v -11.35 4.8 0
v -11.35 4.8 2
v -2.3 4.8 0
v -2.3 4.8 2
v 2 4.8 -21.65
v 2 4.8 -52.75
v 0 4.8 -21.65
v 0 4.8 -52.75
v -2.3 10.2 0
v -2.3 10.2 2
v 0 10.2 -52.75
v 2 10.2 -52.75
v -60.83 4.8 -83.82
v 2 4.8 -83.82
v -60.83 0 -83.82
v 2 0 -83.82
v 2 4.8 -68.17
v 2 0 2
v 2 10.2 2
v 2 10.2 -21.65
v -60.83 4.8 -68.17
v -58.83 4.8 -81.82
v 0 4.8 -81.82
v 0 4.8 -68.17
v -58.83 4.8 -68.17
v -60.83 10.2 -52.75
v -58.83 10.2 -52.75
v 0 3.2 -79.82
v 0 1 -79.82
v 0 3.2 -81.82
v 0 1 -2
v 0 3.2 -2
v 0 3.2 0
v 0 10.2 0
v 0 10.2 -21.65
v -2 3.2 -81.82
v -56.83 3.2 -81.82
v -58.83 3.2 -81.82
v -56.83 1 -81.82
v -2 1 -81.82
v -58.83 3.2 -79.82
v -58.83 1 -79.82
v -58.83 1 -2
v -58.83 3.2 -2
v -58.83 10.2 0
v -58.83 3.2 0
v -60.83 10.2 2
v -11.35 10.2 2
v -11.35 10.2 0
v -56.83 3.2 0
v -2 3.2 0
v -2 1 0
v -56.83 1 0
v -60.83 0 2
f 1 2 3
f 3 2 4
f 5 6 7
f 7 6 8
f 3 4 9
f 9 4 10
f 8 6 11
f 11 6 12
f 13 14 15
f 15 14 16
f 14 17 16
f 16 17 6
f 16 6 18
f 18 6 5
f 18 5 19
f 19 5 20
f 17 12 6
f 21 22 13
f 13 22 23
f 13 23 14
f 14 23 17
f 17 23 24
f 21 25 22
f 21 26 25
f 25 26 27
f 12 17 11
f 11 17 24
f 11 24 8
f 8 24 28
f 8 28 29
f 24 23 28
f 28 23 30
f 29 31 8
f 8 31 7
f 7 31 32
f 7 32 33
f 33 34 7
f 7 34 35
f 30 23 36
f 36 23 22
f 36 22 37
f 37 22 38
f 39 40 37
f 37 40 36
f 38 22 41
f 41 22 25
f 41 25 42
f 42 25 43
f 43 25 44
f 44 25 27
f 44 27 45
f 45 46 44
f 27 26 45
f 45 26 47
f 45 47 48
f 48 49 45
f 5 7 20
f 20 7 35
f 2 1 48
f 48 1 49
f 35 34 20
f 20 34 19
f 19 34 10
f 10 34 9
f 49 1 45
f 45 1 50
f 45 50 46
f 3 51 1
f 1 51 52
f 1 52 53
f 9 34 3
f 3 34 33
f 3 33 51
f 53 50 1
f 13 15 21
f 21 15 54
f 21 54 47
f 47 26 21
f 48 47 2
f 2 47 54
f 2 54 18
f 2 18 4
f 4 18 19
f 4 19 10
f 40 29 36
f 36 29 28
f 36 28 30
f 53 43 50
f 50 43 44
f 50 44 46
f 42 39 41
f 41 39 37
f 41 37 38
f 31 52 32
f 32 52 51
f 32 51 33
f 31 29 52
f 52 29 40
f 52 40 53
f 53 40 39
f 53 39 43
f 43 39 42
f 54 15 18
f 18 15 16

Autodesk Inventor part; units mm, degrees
ref_plane "YZ Plane" through (0, 0, 0) normal (1, 0, 0) x (0, 1, 0)
ref_plane "XZ Plane" through (0, 0, 0) normal (0, 1, 0) x (-1, 0, 0)
ref_plane "XY Plane" through (0, 0, 0) normal (0, 0, 1) x (1, 0, 0)
sketch "Sketch1" plane through (0, 0, 0) normal (0, 1, 0) x (-1, 0, 0)
  line L0 (58.83, 0) -> (0, 0)
  line L1 (0, 0) -> (0, -81.82)
  line L2 (0, -81.82) -> (58.83, -81.82)
  line L3 (58.83, -81.82) -> (58.83, 0)
  point P0 (0, 0)
  dimension "d0" = 58.83
  dimension "d1" = 81.82
extrude "Extrusion1" add sketch "Sketch1" along normal blind 1
sketch "Sketch2" plane through (0, 1, 0) normal (0, 1, 0) x (1, 0, 0)
  line L0 (-56.83, 0) -> (-58.83, 2)
  line L1 (-56.83, 81.82) -> (-58.83, 79.82)
  line L2 (0, 79.82) -> (-2, 81.82)
  line L3 (-2, 0) -> (0, 2)
  line L4 (-58.83, 0) -> (0, 0) projected
  line L5 (-58.83, 0) -> (-58.83, 2)
  line L6 (-58.83, 81.82) -> (-58.83, 0) projected
  line L7 (-58.83, 0) -> (-56.83, 0)
  line L8 (-58.83, 81.82) -> (-58.83, 79.82)
  line L9 (-58.83, 2) -> (-58.83, 0)
  line L10 (-58.83, 0) -> (-56.83, 0)
  line L11 (-2, 0) -> (0, 0)
  line L12 (0, 0) -> (0, 2)
  line L13 (0, 79.82) -> (0, 81.82)
  line L14 (0, 81.82) -> (-2, 81.82)
  line L15 (-56.83, 81.82) -> (-58.83, 81.82)
  dimension "d4" = 2
  dimension "d5" = 2
  dimension "d6" = 2
  dimension "d7" = 2
  dimension "d8" = 2
  dimension "d9" = 2
  dimension "d10" = 2
  dimension "d11" = 2
extrude "Extrusion2" add sketch "Sketch2" along normal blind 2.2
sketch "Sketch3" plane through (0, 0, 0) normal (0, -1, 0) x (1, 0, 0)
  line L0 (-58.83, 0) -> (0, 0) projected
  line L1 (-58.83, -81.82) -> (-58.83, 0) projected
  line L2 (0, -81.82) -> (-58.83, -81.82) projected
  line L3 (0, 0) -> (0, -81.82) projected
  line L4 (2, 2) -> (-60.83, 2)
  line L5 (-60.83, 2) -> (-60.83, -83.82)
  line L6 (-60.83, -83.82) -> (2, -83.82)
  line L7 (2, -83.82) -> (2, 2)
  point P0 (0, 0)
  dimension "d14" = 2
extrude "Extrusion3" add sketch "Sketch3" against normal blind 10.2
sketch "Sketch4" plane through (0, 10.2, 0) normal (0, 1, 0) x (1, 0, 0)
  line L0 (-58.83, 0) -> (-58.83, 81.82) projected
  line L1 (-58.83, 81.82) -> (0, 81.82) projected
  line L2 (0, 81.82) -> (0, 0) projected
  line L3 (0, 0) -> (-58.83, 0) projected
  line L4 (-60.83, -2) -> (2, -2) projected
  line L5 (2, -2) -> (2, 83.82) projected
  line L6 (2, 83.82) -> (-60.83, 83.82) projected
  line L7 (-60.83, 83.82) -> (-60.83, -2) projected
  line L8 (0, 0) -> (-2.3, 0)
  line L9 (-56.83, 0) -> (-2, 0) projected
  line L10 (2, -2) -> (-60.83, -2) projected
  line L11 (-2.3, 0) -> (-11.35, 0)
  line L12 (-11.35, 0) -> (-11.35, -2)
  line L13 (-11.35, -2) -> (-2.3, -2)
  line L14 (-2.3, -2) -> (-2.3, 0)
  point P0 (0, 0)
  dimension "d17" = 2.3
  dimension "d18" = 9.05
extrude "Extrusion4" cut sketch "Sketch4" against normal blind 7 contours L3 L14 L4 L12
sketch "Sketch5" plane through (0, 10.2, 0) normal (0, 1, 0) x (1, 0, 0)
  line L0 (0, 0) -> (0, 21.65)
  line L1 (0, 81.82) -> (0, 0) projected
  line L2 (2, -2) -> (2, 83.82) projected
  line L3 (0, 21.65) -> (2, 21.65)
  line L4 (2, 21.65) -> (2, 52.75)
  line L5 (2, 52.75) -> (0, 52.75)
  line L6 (0, 52.75) -> (0, 21.65)
  dimension "d21" = 21.65
  dimension "d22" = 31.1
extrude "Extrusion5" cut sketch "Sketch5" against normal blind 7
sketch "Sketch7" plane through (0, 3.2, -81.82) normal (-1, 0, 0) x (0, 0, 1)
  line L0 (60.17, 7) -> (60.17, 0) projected
  line L1 (60.17, 0) -> (29.07, 0) projected
  line L2 (29.07, 0) -> (29.07, 7) projected
  line L3 (0, 7) -> (29.07, 7) projected
  line L4 (2, -2.2) -> (2, 0) projected
  line L5 (79.82, -2.2) -> (2, -2.2) projected
  line L6 (79.82, -2.2) -> (79.82, 0) projected
  line L7 (81.82, 0) -> (79.82, 0) projected
  line L8 (81.82, 0) -> (81.82, 7) projected
  line L9 (60.17, 7) -> (81.82, 7) projected
  line L10 (0, 0) -> (0, 1.6)
  line L11 (0, 0) -> (0, 7) projected
  line L12 (0, 1.6) -> (13.65, 1.6)
  line L13 (29.07, 7) -> (29.07, 0) projected
  line L14 (13.65, 1.6) -> (29.07, 7)
  line L15 (29.07, 7) -> (-2, 7) projected
  line L16 (29.07, 7) -> (-2, 7)
  line L17 (-2, 7) -> (-2, 1.6)
  line L18 (-2, 1.6) -> (0, 1.6)
  point P0 (81.82, -3.2)
  dimension "d25" = 1.6
  dimension "d26" = 13.65
  dimension "d27" = 90
extrude "Extrusion6" cut sketch "Sketch7" against normal blind 7 and the other way blind 61 contours L3 L14 L12 L11
sketch "Sketch8" plane through (-60.83, 0, -83.82) normal (-1, 0, 0) x (0, 0, 1)
  line L0 (2, 4.8) -> (15.65, 4.8) projected
  line L1 (15.65, 4.8) -> (31.07, 10.2) projected
  line L2 (31.07, 10.2) -> (85.82, 10.2) projected
  line L3 (85.82, 10.2) -> (85.82, 0) projected
  line L4 (85.82, 0) -> (0, 0) projected
  line L5 (0, 0) -> (0, 10.2) projected
  line L6 (0, 10.2) -> (2, 10.2) projected
  line L7 (2, 10.2) -> (2, 4.8) projected
  line L8 (2, 4.8) -> (2, 10.2) projected
  line L9 (0, 10.2) -> (2, 10.2) projected
  line L10 (0, 0) -> (0, 10.2) projected
  line L11 (85.82, 0) -> (0, 0) projected
  line L12 (85.82, 0) -> (85.82, 10.2) projected
  line L13 (31.07, 10.2) -> (85.82, 10.2) projected
  line L14 (31.07, 10.2) -> (15.65, 4.8) projected
  line L15 (15.65, 4.8) -> (2, 4.8) projected
  line L16 (0, 10.2) -> (2, 10.2) projected
  line L17 (0, 10.2) -> (2, 10.2)
  line L18 (2, 10.2) -> (2, 4.8)
  line L19 (2, 4.8) -> (0, 4.8)
  line L20 (0, 4.8) -> (0, 10.2)
  point P0 (83.82, 0)
extrude "Extrusion7" cut sketch "Sketch8" against normal blind 63 contours L19 L5 L6 L7
sketch "Sketch9" plane through (0, 3.2, 0) normal (0, 1, 0) x (1, 0, 0)
  line L0 (-11.35, 0) -> (-2.3, 0) projected
  line L1 (-11.35, -2) -> (-11.35, 0) projected
  line L2 (-2.3, -2) -> (-11.35, -2) projected
  line L3 (-2.3, 0) -> (-2.3, -2) projected
  line L4 (2, 21.65) -> (0, 21.65) projected
  line L5 (2, 52.75) -> (2, 21.65) projected
  line L6 (0, 52.75) -> (2, 52.75) projected
  line L7 (0, 21.65) -> (0, 52.75) projected
  point P0 (0, 0)
extrude "Extrusion8" add sketch "Sketch9" along normal blind 1.6
equation "\"d5\" = d4"
equation "\"d6\" = d4"
equation "\"d7\" = d6"
equation "\"d8\" = d4"
equation "\"d9\" = d8"
equation "\"d10\" = d4"
equation "\"d11\" = d10"
properties part number "Enclosure"
